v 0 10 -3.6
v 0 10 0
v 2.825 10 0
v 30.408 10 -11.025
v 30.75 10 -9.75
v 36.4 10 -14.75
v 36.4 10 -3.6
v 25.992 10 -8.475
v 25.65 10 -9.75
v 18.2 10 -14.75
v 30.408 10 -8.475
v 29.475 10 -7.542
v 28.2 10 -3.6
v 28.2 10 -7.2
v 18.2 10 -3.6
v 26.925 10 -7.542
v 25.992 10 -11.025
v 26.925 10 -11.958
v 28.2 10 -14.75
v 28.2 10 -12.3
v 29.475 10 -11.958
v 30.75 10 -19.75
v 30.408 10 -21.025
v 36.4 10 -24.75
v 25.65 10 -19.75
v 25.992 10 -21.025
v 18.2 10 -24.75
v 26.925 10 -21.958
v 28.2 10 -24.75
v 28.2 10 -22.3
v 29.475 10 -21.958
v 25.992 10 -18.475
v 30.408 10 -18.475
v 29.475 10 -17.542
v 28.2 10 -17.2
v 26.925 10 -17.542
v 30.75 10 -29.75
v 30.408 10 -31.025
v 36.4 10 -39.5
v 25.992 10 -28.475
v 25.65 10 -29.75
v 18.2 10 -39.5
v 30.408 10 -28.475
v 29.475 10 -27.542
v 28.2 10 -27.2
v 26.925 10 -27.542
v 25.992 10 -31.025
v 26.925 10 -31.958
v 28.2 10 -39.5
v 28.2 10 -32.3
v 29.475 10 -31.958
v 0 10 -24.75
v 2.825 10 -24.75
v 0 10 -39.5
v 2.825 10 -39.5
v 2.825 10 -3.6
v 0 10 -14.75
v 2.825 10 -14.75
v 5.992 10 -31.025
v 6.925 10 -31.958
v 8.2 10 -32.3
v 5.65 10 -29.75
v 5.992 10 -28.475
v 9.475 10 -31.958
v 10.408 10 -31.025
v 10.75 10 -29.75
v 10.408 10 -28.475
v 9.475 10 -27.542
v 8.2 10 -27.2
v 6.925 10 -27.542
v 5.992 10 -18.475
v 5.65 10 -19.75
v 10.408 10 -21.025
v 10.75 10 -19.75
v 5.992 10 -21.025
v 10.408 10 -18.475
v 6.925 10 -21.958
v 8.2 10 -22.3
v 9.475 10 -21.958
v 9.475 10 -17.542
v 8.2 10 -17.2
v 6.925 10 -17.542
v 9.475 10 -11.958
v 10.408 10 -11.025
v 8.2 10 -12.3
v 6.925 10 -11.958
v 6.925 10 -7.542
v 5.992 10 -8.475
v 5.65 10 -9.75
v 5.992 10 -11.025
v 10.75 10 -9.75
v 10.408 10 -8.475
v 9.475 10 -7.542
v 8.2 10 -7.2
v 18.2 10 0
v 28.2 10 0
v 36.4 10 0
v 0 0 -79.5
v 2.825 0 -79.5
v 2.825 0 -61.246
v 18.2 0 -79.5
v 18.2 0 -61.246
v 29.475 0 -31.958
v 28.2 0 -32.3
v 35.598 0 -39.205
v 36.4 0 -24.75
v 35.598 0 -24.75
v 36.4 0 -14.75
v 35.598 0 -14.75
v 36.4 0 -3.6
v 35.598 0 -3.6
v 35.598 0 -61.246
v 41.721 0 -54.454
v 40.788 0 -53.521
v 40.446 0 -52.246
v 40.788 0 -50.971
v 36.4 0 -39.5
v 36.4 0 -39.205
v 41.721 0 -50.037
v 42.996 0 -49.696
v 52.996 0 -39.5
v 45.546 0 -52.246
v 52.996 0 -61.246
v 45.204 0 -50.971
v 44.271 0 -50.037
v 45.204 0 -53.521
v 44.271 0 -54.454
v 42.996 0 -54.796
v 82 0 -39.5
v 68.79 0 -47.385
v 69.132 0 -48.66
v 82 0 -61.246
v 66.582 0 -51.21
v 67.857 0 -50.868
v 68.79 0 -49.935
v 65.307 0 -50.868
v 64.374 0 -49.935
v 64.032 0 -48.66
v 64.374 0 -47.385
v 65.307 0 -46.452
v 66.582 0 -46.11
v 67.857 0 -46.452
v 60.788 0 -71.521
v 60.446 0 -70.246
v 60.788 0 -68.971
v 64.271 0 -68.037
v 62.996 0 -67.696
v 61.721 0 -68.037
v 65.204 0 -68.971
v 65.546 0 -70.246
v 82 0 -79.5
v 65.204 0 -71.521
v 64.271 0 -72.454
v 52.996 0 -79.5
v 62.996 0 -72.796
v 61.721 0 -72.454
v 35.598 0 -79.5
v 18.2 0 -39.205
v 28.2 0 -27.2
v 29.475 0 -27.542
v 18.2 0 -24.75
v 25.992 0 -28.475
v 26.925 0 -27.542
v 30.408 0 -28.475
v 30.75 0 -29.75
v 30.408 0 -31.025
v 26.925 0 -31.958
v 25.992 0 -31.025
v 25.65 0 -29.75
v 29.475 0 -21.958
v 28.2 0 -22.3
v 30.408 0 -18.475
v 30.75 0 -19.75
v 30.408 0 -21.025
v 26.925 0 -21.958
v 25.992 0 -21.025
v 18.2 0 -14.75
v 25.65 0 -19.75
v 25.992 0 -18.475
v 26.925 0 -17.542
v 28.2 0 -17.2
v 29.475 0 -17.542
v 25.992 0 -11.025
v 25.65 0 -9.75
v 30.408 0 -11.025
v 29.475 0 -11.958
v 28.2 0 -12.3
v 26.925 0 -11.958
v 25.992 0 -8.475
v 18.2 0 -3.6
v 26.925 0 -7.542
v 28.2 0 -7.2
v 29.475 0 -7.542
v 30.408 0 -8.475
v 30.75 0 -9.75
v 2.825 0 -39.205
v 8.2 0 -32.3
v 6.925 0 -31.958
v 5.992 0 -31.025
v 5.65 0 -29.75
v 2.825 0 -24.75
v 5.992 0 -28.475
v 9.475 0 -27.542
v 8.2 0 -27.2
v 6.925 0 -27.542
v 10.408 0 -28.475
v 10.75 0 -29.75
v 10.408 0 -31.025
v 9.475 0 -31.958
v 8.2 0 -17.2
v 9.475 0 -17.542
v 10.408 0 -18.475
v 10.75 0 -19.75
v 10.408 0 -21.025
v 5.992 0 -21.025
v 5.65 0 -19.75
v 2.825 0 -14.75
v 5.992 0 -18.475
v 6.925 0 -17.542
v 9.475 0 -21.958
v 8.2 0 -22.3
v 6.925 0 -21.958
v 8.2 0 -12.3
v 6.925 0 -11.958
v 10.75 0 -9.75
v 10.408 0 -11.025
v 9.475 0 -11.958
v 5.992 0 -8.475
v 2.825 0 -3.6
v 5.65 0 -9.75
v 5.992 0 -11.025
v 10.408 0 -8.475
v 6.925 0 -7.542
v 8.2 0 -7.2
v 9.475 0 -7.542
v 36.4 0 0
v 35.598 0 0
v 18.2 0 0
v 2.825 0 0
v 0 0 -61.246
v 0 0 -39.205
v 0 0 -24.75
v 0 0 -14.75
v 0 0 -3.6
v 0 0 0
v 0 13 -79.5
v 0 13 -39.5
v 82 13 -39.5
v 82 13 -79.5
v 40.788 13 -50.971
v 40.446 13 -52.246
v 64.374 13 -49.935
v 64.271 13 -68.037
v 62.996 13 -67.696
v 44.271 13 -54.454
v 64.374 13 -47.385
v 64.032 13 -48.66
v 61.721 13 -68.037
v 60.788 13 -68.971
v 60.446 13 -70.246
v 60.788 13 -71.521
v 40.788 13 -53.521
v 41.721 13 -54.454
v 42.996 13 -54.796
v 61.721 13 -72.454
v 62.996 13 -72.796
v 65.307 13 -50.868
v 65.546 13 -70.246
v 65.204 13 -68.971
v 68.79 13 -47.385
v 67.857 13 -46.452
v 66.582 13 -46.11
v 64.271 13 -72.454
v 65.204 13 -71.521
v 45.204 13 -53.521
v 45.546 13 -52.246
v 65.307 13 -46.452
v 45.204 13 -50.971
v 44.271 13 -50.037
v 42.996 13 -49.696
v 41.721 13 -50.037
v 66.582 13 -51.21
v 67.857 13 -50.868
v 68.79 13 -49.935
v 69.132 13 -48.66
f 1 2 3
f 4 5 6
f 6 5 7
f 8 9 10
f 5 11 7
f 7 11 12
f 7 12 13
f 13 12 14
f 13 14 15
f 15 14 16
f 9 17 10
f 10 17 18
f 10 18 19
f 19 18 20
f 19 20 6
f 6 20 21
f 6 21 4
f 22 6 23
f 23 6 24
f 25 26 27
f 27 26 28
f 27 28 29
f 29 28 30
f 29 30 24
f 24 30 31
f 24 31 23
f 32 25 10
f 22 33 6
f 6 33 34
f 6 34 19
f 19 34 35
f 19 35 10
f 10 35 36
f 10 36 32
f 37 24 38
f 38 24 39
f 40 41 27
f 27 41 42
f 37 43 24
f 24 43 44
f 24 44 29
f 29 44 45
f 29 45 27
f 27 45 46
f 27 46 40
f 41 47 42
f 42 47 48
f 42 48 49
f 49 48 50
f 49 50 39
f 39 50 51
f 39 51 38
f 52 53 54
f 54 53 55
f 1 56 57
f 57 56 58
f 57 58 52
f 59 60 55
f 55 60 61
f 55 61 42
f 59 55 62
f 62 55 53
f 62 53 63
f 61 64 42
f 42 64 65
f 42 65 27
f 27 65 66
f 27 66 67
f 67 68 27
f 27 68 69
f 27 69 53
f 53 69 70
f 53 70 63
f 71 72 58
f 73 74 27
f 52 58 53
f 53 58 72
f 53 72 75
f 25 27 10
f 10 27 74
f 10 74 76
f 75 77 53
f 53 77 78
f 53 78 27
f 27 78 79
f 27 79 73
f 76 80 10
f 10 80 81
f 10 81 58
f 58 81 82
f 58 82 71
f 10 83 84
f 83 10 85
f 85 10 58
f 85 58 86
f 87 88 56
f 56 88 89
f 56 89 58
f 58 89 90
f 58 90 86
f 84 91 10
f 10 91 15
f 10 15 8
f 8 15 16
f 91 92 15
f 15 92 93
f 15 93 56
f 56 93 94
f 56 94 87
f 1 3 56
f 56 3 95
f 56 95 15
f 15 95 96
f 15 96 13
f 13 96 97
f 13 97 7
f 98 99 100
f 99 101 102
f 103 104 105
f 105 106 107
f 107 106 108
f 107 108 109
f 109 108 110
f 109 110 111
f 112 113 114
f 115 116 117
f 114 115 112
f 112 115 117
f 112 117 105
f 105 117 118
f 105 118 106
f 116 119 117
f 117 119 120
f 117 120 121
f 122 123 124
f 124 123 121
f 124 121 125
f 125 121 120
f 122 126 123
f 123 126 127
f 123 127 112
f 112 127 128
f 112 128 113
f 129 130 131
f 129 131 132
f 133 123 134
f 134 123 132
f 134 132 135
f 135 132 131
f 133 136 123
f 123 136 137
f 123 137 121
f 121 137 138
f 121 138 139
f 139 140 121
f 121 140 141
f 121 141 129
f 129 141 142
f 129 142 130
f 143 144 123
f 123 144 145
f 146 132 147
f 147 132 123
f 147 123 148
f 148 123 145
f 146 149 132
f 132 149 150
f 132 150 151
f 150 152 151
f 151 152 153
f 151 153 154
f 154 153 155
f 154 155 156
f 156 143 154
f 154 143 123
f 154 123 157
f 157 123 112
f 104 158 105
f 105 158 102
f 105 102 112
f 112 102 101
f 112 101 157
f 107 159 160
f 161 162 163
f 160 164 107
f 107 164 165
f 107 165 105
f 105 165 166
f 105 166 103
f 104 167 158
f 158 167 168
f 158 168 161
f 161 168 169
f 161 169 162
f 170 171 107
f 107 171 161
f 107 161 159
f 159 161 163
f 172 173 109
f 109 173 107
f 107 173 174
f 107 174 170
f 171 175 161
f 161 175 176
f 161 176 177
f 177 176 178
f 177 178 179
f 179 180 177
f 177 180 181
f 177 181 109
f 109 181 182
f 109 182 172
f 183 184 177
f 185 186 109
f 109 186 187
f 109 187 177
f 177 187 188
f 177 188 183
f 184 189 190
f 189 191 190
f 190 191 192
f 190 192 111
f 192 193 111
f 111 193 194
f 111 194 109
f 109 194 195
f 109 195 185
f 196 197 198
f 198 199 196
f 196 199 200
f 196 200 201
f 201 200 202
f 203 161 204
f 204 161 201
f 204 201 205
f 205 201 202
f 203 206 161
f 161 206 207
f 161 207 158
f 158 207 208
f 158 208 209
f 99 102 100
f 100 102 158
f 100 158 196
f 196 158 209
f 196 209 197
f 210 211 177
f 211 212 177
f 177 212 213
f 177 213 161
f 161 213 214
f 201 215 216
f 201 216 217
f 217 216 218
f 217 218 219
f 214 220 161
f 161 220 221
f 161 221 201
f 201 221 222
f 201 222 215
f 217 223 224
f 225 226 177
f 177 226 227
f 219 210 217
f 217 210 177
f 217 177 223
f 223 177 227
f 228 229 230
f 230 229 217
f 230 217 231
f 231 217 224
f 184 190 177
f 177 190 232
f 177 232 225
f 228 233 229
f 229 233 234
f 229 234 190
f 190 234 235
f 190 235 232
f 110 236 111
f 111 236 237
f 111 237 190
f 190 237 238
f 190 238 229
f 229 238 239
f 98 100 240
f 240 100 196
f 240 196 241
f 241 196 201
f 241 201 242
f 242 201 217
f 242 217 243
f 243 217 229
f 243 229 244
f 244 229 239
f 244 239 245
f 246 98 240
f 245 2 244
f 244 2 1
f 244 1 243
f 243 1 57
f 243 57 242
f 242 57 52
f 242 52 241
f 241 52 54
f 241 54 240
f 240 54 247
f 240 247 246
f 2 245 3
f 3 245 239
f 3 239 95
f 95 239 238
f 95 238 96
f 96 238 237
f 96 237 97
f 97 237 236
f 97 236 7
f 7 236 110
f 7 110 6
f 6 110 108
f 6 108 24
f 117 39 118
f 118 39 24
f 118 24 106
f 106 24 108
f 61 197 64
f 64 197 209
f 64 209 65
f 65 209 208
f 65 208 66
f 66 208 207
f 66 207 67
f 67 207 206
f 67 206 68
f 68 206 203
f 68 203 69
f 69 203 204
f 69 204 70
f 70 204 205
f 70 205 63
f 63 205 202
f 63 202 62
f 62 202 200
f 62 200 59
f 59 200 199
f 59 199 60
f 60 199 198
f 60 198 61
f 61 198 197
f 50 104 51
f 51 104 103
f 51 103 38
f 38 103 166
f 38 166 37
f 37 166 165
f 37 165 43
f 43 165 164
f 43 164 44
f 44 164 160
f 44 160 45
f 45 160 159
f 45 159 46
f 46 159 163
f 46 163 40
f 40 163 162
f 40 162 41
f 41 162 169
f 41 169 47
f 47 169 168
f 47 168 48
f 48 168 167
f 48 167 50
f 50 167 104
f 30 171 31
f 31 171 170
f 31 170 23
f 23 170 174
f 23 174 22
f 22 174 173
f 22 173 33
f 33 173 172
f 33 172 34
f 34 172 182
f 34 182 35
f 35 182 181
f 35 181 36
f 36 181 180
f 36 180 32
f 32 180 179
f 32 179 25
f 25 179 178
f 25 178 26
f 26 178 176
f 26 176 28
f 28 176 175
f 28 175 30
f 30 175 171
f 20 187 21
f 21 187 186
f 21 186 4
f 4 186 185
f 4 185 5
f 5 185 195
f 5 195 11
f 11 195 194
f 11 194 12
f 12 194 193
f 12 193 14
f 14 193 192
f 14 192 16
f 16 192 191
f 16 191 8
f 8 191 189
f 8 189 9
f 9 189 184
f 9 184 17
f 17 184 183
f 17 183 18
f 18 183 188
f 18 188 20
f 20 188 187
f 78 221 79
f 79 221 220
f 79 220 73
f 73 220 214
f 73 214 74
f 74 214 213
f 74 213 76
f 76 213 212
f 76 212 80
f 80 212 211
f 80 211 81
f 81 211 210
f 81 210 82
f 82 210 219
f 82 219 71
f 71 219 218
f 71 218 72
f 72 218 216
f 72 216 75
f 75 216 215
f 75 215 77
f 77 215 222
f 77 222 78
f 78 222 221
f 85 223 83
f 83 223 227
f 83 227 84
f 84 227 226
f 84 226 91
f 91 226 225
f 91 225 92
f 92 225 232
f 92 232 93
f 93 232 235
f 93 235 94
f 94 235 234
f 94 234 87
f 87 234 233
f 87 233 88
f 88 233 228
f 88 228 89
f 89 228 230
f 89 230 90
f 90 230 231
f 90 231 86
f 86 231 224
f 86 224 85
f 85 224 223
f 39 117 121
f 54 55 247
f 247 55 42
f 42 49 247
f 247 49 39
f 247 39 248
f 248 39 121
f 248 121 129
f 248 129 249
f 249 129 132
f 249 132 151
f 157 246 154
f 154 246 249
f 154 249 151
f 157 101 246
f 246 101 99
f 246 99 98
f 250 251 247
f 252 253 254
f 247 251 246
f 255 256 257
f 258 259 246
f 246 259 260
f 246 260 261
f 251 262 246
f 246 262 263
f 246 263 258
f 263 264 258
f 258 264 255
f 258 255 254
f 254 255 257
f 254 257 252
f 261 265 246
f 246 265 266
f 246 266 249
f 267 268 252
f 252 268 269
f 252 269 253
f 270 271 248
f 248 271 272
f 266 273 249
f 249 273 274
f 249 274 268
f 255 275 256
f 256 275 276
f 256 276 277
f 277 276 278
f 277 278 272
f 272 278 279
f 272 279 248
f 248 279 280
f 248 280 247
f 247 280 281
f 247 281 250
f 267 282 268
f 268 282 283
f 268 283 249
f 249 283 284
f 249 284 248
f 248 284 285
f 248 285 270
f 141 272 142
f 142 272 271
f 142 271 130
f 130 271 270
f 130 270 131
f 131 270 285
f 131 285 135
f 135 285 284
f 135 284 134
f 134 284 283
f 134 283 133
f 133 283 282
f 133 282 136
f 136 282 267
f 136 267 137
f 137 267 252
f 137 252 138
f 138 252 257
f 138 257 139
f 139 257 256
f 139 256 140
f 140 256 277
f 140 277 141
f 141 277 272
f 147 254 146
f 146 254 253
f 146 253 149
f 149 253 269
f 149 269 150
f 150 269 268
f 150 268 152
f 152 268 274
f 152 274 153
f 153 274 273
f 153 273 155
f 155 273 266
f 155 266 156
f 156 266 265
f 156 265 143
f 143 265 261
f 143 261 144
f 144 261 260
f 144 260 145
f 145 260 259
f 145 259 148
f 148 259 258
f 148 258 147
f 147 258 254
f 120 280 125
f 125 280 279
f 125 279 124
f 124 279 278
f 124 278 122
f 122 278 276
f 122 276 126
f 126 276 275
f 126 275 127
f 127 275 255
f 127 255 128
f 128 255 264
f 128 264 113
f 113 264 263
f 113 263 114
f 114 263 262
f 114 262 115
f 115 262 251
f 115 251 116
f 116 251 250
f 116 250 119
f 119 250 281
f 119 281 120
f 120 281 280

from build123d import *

# Parameters (mm, degrees)
SKETCH1_W                = 36.4
SKETCH1_H                = 39.5
SKETCH1_R                = 2.55
BOSS_EXTRUDE1_DEPTH      = 10
BOSS_EXTRUDE2_DEPTH      = 3
BOSS_EXTRUDE2_DEPTH_BACK = 10
SKETCH2_W                = 82
SKETCH2_H                = 40
F_5_0MM_DOWEL_HOLE1_D    = 5


with BuildPart() as part:
    # Sketch1 → Boss-Extrude1 (new body)
    with BuildSketch(Plane(origin=(0, 0, 0), x_dir=(1, 0, 0), z_dir=(0, 1, 0))):
        with Locations((18.2, 19.75)):
            Rectangle(SKETCH1_W, SKETCH1_H)
        with Locations(Location((8.2, 29.75, 0), (0, 0, 270))):
            Circle(SKETCH1_R, mode=Mode.SUBTRACT)
        with Locations(Location((28.2, 29.75, 0), (0, 0, 270))):
            Circle(SKETCH1_R, mode=Mode.SUBTRACT)
        with Locations(Location((28.2, 19.75, 0), (0, 0, 270))):
            Circle(SKETCH1_R, mode=Mode.SUBTRACT)
        with Locations(Location((28.2, 9.75, 0), (0, 0, 270))):
            Circle(SKETCH1_R, mode=Mode.SUBTRACT)
        with Locations(Location((8.2, 19.75, 0), (0, 0, 270))):
            Circle(SKETCH1_R, mode=Mode.SUBTRACT)
        with Locations(Location((8.2, 9.75, 0), (0, 0, 270))):
            Circle(SKETCH1_R, mode=Mode.SUBTRACT)
    extrude(amount=BOSS_EXTRUDE1_DEPTH)

    # Sketch2 → Boss-Extrude2 (add, two sides: drawn at the far end of the back side and taken through both)
    with BuildSketch(Plane(origin=(0, 10, 0), x_dir=(1, 0, 0), z_dir=(0, 1, 0)).offset(-BOSS_EXTRUDE2_DEPTH_BACK)):
        with Locations((41, 59.5)):
            Rectangle(SKETCH2_W, SKETCH2_H)
    extrude(amount=BOSS_EXTRUDE2_DEPTH + BOSS_EXTRUDE2_DEPTH_BACK)

    # Ø5.0mm Dowel Hole1 (through all)
    with Locations(Plane(origin=(42.996100309, 13, -52.245667008), x_dir=(0, 0, 1), z_dir=(0, 1, 0))):
        with Locations((0, 0), (-18, 20), (3.585786438, 23.585786437)):
            Hole(F_5_0MM_DOWEL_HOLE1_D / 2)


solid = part.part
